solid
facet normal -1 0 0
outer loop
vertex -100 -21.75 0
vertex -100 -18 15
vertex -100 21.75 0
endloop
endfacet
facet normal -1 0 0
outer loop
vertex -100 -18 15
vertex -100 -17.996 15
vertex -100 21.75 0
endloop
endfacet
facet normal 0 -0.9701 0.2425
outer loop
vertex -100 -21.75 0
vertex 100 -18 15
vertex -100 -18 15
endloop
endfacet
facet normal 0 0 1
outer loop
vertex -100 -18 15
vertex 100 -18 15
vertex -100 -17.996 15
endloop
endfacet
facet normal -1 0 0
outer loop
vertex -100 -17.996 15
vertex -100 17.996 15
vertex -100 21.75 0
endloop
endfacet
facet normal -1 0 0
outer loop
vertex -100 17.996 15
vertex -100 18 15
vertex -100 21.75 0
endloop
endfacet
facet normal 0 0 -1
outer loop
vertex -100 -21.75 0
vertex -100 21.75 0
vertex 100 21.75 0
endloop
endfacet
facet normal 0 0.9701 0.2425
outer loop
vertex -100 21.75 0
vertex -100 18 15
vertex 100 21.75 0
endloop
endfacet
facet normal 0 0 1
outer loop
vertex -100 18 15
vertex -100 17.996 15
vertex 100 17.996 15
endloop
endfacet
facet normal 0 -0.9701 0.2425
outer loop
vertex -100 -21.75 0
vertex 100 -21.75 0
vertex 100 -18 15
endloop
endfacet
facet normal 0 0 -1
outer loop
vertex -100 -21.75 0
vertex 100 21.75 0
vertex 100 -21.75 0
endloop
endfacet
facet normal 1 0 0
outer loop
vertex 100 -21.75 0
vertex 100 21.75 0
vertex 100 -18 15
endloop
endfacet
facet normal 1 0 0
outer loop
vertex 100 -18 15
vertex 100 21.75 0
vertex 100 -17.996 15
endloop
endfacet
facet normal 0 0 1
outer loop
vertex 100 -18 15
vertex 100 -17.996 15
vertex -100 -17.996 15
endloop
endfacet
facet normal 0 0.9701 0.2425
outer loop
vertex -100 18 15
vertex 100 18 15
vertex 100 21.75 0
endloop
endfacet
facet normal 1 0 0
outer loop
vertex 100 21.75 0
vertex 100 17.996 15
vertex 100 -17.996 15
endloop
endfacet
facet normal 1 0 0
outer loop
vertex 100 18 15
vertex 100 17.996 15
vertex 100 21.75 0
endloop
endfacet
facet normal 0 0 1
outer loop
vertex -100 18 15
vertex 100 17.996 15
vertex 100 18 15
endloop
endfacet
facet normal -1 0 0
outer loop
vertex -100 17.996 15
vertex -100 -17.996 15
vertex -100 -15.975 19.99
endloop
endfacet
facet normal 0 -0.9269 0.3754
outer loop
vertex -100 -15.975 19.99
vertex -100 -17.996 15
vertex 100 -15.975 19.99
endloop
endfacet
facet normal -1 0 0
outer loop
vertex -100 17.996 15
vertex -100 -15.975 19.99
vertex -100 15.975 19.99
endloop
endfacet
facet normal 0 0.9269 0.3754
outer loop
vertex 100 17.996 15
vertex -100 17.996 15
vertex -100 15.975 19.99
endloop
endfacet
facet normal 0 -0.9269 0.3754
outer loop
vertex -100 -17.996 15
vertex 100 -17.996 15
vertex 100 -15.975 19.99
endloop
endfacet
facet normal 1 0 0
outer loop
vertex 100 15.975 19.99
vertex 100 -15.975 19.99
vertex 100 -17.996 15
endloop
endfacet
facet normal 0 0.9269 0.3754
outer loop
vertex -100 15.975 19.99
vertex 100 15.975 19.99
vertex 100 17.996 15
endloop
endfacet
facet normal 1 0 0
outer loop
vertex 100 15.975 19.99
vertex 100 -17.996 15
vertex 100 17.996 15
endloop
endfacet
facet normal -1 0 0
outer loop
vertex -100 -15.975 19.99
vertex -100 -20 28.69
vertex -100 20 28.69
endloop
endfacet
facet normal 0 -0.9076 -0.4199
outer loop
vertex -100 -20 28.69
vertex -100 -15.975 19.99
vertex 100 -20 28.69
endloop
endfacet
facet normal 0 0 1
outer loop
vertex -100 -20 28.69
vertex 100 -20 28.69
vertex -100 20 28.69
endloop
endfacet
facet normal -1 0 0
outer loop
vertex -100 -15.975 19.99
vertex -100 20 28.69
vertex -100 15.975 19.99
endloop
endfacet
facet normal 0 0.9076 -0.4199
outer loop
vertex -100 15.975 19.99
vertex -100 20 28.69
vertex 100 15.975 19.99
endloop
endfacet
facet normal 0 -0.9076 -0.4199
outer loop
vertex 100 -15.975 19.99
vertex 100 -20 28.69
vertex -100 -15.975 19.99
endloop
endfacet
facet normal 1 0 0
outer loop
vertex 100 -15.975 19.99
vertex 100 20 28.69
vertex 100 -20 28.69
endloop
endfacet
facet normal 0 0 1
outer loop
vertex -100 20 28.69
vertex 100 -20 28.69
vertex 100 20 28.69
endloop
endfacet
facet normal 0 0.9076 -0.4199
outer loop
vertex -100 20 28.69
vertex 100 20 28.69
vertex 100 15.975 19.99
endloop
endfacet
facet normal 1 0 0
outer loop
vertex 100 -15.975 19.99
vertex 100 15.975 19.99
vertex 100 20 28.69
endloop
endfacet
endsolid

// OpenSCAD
// file: my_function.scad
//------------------------------------------------------------------
// Half cylindee
//------------------------------------------------------------------
module hollowcylindersector(height, radius, angle=360, intradius=0, center=false)
{
  translate ([0, 0, center?(-height/2):0])
    rotate (center?(-angle/2):0, [0, 0, 1])
      rotate_extrude(angle = angle, convexity = 2)
        polygon([[intradius, 0],[intradius, height],[radius, height],[radius, 0]]);
}


//------------------------------------------------------------------
// Triangle
//------------------------------------------------------------------
module triangle(l, w, h)
{
  polyhedron(//pt 0        1        2        3        4        5
         points=[[0,0,0], [l,0,0], [l,w,0], [0,w,0], [0,w,h], [l,w,h]],
         faces=[[0,1,2,3],[5,4,3,2],[0,4,5,1],[0,3,4],[5,2,1]]);
}

//------------------------------------------------------------------
// Triangle
//------------------------------------------------------------------
//module prism(l, w, h)
//{
//  polyhedron(//pt 0        1        2        3        4        5
//         points=[[0,0,0], [l,0,0], [l,w,0], [0,w,0], [0,w,h], [l,w,h]],
//         faces=[[0,1,2,3],[5,4,3,2],[0,4,5,1],[0,3,4],[5,2,1]]);
//}


//------------------------------------------------------------------
// Trapeze form
//------------------------------------------------------------------
module trapeze_form(B, b, l, h) 
{ 
  CubePoints = [
  [ 0, -B/2,  0 ],  //0
  [ l, -B/2,  0 ],  //1
  [ l,  B/2,  0 ],  //2
  [ 0,  B/2,  0 ],  //3
  [ 0, -b/2,  h ],  //4
  [ l, -b/2,  h ],  //5
  [ l,  b/2,  h ],  //6
  [ 0,  b/2,  h ]]; //7
  
  CubeFaces = [
  [0,1,2,3],  // bottom
  [4,5,1,0],  // front
  [7,6,5,4],  // top
  [5,6,2,1],  // right
  [6,7,3,2],  // back
  [7,4,0,3]]; // left
  
  translate([-l/2,0,0]) polyhedron(CubePoints,CubeFaces);
}
// main file
$fn=360;
epsilon=0.01;

use <threads.scad>
use <my_function.scad>

// Vixen
B_Vixen = 43.5;
b_Vixen = 36;
l_Vixen = 200;
h_Vixen = 15;

// Transition
h = 5;

// Avalon
B_Avalon = 31.95;
b_Avalon = 40;
l_Avalon = l_Vixen;
h_Avalon = 8.7;


//---------------------------------------------------------------
// 
module vixen_polemaster_avalon()
{
  union() 
  {
    // vixen
    trapeze_form(B_Vixen, b_Vixen, l_Vixen, h_Vixen);
    
    // Transition
    #translate([0,0,h_Vixen-epsilon]) trapeze_form(b_Vixen, B_Avalon, l_Vixen, h); 
    
    // Avalon
    translate([0,0,h_Vixen+h-epsilon]) trapeze_form(B_Avalon, b_Avalon, l_Avalon, h_Avalon);

      
  }   
  

}    

vixen_polemaster_avalon();
